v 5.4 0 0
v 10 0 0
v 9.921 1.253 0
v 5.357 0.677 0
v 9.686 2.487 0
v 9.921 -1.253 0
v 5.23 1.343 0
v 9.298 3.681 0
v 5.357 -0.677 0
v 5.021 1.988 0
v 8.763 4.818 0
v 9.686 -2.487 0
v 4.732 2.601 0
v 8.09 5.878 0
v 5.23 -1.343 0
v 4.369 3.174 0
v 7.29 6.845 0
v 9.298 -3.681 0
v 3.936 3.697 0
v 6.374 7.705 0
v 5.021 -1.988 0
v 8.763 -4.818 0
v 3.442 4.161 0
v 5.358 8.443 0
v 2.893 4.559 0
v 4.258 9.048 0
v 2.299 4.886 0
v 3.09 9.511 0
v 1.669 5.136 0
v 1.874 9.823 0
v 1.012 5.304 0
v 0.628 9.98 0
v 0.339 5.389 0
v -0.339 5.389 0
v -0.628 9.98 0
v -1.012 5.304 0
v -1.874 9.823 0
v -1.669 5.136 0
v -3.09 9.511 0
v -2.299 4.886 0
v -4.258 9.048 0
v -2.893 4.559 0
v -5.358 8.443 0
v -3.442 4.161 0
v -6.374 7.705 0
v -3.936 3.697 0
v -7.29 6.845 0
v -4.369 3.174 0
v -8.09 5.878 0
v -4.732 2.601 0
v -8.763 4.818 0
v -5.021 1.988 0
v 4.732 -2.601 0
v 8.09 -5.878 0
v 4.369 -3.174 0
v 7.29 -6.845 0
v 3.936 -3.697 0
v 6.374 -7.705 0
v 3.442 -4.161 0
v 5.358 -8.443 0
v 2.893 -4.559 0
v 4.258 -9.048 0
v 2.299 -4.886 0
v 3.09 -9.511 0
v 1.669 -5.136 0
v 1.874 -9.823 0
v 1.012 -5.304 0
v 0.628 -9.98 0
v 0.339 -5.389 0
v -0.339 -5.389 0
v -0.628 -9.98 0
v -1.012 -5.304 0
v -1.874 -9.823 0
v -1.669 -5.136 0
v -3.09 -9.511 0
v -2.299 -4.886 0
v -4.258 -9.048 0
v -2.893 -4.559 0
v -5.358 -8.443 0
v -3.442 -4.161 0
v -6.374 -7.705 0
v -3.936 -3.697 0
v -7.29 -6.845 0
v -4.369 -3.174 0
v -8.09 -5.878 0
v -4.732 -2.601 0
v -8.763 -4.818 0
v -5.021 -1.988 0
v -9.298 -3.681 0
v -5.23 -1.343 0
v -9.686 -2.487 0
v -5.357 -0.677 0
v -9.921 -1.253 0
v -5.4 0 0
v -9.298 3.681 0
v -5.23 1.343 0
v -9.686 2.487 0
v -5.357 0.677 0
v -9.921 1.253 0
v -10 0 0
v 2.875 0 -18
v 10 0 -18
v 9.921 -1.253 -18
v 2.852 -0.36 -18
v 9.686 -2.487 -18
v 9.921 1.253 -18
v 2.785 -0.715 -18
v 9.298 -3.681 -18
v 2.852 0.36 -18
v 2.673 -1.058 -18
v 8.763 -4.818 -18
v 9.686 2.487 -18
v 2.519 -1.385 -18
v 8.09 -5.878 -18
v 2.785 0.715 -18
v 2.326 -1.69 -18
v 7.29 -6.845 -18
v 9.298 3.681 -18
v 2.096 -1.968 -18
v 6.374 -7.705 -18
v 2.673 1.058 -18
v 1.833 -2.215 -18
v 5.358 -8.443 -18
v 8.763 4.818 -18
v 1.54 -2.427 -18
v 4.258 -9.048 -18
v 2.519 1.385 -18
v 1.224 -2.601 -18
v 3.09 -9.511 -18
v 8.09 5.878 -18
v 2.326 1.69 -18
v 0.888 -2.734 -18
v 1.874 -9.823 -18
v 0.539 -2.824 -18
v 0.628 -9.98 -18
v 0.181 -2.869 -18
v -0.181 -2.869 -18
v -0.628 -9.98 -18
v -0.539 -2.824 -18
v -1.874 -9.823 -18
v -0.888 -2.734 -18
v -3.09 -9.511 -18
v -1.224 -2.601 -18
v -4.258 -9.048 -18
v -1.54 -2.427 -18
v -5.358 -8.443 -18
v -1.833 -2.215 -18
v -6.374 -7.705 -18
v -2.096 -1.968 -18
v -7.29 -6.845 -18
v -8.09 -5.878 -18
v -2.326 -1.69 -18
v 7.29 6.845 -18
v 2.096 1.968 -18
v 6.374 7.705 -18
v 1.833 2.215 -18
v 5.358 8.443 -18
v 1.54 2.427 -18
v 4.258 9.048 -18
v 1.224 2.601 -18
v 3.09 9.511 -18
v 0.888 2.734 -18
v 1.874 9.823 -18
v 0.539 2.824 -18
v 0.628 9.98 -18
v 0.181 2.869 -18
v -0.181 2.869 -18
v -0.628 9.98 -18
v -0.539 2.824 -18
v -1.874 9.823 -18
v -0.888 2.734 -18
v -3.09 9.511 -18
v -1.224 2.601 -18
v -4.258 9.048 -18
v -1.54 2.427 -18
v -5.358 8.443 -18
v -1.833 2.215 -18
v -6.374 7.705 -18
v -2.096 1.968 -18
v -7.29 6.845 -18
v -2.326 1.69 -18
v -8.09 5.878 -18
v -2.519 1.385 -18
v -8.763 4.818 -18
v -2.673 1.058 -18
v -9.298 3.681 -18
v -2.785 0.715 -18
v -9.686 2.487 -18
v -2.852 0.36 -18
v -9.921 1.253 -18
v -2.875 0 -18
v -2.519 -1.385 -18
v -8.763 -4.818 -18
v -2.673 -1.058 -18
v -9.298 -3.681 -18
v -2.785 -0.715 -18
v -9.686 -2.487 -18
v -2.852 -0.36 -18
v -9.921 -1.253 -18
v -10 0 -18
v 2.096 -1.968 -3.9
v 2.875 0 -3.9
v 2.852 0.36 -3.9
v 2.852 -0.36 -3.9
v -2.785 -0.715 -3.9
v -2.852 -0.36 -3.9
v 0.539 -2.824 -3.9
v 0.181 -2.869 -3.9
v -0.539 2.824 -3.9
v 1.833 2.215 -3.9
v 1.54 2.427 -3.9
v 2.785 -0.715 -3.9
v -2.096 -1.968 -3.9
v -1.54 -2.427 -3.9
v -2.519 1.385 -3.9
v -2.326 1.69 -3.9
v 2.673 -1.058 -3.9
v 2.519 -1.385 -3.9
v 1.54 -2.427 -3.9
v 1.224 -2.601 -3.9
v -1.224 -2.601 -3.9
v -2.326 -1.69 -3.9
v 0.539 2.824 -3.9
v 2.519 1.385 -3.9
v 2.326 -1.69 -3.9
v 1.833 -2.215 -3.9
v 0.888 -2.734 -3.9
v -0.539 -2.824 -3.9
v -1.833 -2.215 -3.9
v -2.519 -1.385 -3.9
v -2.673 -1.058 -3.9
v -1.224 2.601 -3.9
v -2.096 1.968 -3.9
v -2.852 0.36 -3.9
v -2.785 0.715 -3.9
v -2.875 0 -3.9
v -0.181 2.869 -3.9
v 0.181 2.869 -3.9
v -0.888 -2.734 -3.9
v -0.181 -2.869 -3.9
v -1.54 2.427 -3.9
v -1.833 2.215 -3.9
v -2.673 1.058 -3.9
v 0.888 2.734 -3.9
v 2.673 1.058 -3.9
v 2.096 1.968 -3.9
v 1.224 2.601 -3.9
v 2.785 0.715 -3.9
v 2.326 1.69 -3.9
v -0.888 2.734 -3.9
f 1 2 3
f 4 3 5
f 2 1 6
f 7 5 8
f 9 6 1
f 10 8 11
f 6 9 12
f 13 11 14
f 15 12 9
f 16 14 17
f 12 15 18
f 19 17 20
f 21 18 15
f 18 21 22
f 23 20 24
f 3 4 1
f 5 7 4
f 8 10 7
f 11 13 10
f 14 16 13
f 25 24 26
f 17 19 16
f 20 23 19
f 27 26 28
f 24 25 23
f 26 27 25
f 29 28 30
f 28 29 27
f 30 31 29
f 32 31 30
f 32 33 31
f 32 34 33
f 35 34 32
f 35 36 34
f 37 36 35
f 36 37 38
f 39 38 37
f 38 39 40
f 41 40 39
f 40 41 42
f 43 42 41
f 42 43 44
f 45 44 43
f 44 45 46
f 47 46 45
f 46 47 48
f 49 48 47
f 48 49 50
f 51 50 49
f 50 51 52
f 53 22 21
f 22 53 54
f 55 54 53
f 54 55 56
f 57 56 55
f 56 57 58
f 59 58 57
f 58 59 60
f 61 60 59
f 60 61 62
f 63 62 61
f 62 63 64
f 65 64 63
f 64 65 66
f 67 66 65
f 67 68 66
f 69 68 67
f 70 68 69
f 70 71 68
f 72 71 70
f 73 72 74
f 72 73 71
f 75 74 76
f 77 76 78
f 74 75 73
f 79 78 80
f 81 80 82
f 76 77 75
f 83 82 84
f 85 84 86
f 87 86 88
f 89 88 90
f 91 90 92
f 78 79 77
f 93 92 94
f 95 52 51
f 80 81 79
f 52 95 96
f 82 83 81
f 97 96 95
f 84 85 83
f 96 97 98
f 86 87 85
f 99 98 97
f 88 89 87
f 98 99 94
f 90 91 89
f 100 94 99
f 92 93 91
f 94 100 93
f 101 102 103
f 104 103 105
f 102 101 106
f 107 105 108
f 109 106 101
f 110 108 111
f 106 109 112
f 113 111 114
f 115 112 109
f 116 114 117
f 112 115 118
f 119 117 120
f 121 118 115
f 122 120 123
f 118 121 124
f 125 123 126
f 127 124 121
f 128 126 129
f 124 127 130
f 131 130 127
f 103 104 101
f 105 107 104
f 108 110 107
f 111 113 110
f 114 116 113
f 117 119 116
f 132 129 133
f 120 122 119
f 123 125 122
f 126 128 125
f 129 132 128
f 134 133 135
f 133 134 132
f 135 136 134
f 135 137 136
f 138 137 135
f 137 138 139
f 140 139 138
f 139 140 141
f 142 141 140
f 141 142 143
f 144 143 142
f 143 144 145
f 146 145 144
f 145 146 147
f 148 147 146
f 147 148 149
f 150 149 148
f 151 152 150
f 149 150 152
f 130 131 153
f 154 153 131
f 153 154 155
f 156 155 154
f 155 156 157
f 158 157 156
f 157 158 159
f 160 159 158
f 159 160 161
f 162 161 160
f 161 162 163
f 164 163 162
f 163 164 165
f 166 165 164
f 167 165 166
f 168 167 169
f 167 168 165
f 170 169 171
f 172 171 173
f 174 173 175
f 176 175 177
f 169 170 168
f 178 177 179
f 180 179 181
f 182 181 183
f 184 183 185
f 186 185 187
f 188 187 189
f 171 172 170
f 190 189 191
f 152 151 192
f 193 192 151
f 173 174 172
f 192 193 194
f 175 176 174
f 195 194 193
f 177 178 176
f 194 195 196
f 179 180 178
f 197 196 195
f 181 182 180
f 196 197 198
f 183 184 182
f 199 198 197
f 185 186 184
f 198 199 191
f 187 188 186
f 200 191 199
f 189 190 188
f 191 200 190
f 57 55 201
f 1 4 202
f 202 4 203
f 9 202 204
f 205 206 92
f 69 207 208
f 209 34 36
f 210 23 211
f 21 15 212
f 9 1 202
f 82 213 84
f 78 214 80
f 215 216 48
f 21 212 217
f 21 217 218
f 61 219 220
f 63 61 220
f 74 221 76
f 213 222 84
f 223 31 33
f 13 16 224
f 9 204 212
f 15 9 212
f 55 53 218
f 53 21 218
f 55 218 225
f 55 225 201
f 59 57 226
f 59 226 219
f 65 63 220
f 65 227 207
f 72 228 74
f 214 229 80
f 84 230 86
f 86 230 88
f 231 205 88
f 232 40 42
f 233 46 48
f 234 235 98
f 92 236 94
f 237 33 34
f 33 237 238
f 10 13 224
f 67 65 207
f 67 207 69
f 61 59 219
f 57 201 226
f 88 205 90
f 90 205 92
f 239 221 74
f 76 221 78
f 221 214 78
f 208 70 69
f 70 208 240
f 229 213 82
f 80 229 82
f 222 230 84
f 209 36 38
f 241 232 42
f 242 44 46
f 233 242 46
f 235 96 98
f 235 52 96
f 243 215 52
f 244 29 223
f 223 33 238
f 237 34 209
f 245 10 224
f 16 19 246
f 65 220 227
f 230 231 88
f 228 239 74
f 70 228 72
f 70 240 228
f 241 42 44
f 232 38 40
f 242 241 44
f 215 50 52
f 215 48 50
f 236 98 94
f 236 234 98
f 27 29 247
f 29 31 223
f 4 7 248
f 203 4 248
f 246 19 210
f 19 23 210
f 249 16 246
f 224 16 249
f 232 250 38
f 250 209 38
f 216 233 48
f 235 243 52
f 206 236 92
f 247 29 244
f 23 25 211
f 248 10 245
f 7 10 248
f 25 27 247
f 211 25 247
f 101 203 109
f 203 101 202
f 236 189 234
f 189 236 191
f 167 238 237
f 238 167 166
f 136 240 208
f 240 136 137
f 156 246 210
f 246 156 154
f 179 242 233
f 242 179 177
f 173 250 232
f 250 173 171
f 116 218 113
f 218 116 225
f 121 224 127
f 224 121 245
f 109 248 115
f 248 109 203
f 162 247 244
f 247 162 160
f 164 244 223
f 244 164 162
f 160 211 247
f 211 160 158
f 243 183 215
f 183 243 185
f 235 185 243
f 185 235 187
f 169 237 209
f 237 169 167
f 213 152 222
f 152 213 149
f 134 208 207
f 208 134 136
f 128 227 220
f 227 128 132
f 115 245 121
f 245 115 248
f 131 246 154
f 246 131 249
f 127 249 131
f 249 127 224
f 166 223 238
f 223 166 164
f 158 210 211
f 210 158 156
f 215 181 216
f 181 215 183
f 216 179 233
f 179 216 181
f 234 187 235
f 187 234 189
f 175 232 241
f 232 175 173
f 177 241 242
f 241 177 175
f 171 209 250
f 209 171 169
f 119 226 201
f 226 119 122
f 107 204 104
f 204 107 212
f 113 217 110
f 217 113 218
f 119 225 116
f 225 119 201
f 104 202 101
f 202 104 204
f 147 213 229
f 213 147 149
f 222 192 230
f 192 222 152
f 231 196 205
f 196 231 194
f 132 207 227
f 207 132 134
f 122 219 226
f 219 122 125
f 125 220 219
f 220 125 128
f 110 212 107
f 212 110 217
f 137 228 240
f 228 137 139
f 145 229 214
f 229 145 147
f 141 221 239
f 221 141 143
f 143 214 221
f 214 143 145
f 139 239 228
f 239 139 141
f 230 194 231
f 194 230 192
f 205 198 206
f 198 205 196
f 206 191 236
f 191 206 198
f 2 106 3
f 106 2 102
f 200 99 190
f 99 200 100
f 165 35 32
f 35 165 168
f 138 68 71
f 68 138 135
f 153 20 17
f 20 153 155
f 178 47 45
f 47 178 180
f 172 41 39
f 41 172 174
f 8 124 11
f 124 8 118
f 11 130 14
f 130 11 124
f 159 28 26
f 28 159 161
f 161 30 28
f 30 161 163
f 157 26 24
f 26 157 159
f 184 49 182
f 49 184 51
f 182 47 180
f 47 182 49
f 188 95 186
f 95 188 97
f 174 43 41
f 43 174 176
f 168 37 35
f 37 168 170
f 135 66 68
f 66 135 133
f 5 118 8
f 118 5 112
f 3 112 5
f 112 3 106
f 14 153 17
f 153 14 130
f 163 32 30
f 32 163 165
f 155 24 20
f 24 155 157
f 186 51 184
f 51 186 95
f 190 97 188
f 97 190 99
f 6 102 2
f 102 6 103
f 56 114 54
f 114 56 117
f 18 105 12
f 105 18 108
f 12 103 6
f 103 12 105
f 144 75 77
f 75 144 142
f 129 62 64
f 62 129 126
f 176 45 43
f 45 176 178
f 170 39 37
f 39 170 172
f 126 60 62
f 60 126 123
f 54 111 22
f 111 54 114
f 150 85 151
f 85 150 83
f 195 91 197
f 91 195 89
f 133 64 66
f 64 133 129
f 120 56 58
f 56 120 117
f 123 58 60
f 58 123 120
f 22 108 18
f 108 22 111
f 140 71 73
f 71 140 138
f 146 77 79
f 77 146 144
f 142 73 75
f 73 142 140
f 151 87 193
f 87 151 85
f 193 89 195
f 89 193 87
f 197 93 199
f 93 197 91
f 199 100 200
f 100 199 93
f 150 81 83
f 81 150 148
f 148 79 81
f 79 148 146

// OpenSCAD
$fn = 50;


difference() {
	union() {
		translate(v = [0, 0, -18.0000000000]) {
			cylinder(h = 18, r = 10.0000000000);
		}
		cylinder(h = 0, r = 13.0000000000);
	}
	union() {
		translate(v = [0, 0, 0]) {
			rotate(a = [0, 0, 0]) {
				difference() {
					union() {
						#translate(v = [0, 0, -18.0000000000]) {
							cylinder(h = 18, r = 2.6000000000);
						}
						#translate(v = [0, 0, -3.9000000000]) {
							cylinder(h = 3.9000000000, r = 10.0000000000, r1 = 2.8750000000, r2 = 5.4000000000);
						}
						#translate(v = [0, 0, -18.0000000000]) {
							cylinder(h = 18, r = 2.8750000000);
						}
						#translate(v = [0, 0, -18.0000000000]) {
							cylinder(h = 18, r = 2.6000000000);
						}
					}
					union();
				}
			}
		}
	}
}
